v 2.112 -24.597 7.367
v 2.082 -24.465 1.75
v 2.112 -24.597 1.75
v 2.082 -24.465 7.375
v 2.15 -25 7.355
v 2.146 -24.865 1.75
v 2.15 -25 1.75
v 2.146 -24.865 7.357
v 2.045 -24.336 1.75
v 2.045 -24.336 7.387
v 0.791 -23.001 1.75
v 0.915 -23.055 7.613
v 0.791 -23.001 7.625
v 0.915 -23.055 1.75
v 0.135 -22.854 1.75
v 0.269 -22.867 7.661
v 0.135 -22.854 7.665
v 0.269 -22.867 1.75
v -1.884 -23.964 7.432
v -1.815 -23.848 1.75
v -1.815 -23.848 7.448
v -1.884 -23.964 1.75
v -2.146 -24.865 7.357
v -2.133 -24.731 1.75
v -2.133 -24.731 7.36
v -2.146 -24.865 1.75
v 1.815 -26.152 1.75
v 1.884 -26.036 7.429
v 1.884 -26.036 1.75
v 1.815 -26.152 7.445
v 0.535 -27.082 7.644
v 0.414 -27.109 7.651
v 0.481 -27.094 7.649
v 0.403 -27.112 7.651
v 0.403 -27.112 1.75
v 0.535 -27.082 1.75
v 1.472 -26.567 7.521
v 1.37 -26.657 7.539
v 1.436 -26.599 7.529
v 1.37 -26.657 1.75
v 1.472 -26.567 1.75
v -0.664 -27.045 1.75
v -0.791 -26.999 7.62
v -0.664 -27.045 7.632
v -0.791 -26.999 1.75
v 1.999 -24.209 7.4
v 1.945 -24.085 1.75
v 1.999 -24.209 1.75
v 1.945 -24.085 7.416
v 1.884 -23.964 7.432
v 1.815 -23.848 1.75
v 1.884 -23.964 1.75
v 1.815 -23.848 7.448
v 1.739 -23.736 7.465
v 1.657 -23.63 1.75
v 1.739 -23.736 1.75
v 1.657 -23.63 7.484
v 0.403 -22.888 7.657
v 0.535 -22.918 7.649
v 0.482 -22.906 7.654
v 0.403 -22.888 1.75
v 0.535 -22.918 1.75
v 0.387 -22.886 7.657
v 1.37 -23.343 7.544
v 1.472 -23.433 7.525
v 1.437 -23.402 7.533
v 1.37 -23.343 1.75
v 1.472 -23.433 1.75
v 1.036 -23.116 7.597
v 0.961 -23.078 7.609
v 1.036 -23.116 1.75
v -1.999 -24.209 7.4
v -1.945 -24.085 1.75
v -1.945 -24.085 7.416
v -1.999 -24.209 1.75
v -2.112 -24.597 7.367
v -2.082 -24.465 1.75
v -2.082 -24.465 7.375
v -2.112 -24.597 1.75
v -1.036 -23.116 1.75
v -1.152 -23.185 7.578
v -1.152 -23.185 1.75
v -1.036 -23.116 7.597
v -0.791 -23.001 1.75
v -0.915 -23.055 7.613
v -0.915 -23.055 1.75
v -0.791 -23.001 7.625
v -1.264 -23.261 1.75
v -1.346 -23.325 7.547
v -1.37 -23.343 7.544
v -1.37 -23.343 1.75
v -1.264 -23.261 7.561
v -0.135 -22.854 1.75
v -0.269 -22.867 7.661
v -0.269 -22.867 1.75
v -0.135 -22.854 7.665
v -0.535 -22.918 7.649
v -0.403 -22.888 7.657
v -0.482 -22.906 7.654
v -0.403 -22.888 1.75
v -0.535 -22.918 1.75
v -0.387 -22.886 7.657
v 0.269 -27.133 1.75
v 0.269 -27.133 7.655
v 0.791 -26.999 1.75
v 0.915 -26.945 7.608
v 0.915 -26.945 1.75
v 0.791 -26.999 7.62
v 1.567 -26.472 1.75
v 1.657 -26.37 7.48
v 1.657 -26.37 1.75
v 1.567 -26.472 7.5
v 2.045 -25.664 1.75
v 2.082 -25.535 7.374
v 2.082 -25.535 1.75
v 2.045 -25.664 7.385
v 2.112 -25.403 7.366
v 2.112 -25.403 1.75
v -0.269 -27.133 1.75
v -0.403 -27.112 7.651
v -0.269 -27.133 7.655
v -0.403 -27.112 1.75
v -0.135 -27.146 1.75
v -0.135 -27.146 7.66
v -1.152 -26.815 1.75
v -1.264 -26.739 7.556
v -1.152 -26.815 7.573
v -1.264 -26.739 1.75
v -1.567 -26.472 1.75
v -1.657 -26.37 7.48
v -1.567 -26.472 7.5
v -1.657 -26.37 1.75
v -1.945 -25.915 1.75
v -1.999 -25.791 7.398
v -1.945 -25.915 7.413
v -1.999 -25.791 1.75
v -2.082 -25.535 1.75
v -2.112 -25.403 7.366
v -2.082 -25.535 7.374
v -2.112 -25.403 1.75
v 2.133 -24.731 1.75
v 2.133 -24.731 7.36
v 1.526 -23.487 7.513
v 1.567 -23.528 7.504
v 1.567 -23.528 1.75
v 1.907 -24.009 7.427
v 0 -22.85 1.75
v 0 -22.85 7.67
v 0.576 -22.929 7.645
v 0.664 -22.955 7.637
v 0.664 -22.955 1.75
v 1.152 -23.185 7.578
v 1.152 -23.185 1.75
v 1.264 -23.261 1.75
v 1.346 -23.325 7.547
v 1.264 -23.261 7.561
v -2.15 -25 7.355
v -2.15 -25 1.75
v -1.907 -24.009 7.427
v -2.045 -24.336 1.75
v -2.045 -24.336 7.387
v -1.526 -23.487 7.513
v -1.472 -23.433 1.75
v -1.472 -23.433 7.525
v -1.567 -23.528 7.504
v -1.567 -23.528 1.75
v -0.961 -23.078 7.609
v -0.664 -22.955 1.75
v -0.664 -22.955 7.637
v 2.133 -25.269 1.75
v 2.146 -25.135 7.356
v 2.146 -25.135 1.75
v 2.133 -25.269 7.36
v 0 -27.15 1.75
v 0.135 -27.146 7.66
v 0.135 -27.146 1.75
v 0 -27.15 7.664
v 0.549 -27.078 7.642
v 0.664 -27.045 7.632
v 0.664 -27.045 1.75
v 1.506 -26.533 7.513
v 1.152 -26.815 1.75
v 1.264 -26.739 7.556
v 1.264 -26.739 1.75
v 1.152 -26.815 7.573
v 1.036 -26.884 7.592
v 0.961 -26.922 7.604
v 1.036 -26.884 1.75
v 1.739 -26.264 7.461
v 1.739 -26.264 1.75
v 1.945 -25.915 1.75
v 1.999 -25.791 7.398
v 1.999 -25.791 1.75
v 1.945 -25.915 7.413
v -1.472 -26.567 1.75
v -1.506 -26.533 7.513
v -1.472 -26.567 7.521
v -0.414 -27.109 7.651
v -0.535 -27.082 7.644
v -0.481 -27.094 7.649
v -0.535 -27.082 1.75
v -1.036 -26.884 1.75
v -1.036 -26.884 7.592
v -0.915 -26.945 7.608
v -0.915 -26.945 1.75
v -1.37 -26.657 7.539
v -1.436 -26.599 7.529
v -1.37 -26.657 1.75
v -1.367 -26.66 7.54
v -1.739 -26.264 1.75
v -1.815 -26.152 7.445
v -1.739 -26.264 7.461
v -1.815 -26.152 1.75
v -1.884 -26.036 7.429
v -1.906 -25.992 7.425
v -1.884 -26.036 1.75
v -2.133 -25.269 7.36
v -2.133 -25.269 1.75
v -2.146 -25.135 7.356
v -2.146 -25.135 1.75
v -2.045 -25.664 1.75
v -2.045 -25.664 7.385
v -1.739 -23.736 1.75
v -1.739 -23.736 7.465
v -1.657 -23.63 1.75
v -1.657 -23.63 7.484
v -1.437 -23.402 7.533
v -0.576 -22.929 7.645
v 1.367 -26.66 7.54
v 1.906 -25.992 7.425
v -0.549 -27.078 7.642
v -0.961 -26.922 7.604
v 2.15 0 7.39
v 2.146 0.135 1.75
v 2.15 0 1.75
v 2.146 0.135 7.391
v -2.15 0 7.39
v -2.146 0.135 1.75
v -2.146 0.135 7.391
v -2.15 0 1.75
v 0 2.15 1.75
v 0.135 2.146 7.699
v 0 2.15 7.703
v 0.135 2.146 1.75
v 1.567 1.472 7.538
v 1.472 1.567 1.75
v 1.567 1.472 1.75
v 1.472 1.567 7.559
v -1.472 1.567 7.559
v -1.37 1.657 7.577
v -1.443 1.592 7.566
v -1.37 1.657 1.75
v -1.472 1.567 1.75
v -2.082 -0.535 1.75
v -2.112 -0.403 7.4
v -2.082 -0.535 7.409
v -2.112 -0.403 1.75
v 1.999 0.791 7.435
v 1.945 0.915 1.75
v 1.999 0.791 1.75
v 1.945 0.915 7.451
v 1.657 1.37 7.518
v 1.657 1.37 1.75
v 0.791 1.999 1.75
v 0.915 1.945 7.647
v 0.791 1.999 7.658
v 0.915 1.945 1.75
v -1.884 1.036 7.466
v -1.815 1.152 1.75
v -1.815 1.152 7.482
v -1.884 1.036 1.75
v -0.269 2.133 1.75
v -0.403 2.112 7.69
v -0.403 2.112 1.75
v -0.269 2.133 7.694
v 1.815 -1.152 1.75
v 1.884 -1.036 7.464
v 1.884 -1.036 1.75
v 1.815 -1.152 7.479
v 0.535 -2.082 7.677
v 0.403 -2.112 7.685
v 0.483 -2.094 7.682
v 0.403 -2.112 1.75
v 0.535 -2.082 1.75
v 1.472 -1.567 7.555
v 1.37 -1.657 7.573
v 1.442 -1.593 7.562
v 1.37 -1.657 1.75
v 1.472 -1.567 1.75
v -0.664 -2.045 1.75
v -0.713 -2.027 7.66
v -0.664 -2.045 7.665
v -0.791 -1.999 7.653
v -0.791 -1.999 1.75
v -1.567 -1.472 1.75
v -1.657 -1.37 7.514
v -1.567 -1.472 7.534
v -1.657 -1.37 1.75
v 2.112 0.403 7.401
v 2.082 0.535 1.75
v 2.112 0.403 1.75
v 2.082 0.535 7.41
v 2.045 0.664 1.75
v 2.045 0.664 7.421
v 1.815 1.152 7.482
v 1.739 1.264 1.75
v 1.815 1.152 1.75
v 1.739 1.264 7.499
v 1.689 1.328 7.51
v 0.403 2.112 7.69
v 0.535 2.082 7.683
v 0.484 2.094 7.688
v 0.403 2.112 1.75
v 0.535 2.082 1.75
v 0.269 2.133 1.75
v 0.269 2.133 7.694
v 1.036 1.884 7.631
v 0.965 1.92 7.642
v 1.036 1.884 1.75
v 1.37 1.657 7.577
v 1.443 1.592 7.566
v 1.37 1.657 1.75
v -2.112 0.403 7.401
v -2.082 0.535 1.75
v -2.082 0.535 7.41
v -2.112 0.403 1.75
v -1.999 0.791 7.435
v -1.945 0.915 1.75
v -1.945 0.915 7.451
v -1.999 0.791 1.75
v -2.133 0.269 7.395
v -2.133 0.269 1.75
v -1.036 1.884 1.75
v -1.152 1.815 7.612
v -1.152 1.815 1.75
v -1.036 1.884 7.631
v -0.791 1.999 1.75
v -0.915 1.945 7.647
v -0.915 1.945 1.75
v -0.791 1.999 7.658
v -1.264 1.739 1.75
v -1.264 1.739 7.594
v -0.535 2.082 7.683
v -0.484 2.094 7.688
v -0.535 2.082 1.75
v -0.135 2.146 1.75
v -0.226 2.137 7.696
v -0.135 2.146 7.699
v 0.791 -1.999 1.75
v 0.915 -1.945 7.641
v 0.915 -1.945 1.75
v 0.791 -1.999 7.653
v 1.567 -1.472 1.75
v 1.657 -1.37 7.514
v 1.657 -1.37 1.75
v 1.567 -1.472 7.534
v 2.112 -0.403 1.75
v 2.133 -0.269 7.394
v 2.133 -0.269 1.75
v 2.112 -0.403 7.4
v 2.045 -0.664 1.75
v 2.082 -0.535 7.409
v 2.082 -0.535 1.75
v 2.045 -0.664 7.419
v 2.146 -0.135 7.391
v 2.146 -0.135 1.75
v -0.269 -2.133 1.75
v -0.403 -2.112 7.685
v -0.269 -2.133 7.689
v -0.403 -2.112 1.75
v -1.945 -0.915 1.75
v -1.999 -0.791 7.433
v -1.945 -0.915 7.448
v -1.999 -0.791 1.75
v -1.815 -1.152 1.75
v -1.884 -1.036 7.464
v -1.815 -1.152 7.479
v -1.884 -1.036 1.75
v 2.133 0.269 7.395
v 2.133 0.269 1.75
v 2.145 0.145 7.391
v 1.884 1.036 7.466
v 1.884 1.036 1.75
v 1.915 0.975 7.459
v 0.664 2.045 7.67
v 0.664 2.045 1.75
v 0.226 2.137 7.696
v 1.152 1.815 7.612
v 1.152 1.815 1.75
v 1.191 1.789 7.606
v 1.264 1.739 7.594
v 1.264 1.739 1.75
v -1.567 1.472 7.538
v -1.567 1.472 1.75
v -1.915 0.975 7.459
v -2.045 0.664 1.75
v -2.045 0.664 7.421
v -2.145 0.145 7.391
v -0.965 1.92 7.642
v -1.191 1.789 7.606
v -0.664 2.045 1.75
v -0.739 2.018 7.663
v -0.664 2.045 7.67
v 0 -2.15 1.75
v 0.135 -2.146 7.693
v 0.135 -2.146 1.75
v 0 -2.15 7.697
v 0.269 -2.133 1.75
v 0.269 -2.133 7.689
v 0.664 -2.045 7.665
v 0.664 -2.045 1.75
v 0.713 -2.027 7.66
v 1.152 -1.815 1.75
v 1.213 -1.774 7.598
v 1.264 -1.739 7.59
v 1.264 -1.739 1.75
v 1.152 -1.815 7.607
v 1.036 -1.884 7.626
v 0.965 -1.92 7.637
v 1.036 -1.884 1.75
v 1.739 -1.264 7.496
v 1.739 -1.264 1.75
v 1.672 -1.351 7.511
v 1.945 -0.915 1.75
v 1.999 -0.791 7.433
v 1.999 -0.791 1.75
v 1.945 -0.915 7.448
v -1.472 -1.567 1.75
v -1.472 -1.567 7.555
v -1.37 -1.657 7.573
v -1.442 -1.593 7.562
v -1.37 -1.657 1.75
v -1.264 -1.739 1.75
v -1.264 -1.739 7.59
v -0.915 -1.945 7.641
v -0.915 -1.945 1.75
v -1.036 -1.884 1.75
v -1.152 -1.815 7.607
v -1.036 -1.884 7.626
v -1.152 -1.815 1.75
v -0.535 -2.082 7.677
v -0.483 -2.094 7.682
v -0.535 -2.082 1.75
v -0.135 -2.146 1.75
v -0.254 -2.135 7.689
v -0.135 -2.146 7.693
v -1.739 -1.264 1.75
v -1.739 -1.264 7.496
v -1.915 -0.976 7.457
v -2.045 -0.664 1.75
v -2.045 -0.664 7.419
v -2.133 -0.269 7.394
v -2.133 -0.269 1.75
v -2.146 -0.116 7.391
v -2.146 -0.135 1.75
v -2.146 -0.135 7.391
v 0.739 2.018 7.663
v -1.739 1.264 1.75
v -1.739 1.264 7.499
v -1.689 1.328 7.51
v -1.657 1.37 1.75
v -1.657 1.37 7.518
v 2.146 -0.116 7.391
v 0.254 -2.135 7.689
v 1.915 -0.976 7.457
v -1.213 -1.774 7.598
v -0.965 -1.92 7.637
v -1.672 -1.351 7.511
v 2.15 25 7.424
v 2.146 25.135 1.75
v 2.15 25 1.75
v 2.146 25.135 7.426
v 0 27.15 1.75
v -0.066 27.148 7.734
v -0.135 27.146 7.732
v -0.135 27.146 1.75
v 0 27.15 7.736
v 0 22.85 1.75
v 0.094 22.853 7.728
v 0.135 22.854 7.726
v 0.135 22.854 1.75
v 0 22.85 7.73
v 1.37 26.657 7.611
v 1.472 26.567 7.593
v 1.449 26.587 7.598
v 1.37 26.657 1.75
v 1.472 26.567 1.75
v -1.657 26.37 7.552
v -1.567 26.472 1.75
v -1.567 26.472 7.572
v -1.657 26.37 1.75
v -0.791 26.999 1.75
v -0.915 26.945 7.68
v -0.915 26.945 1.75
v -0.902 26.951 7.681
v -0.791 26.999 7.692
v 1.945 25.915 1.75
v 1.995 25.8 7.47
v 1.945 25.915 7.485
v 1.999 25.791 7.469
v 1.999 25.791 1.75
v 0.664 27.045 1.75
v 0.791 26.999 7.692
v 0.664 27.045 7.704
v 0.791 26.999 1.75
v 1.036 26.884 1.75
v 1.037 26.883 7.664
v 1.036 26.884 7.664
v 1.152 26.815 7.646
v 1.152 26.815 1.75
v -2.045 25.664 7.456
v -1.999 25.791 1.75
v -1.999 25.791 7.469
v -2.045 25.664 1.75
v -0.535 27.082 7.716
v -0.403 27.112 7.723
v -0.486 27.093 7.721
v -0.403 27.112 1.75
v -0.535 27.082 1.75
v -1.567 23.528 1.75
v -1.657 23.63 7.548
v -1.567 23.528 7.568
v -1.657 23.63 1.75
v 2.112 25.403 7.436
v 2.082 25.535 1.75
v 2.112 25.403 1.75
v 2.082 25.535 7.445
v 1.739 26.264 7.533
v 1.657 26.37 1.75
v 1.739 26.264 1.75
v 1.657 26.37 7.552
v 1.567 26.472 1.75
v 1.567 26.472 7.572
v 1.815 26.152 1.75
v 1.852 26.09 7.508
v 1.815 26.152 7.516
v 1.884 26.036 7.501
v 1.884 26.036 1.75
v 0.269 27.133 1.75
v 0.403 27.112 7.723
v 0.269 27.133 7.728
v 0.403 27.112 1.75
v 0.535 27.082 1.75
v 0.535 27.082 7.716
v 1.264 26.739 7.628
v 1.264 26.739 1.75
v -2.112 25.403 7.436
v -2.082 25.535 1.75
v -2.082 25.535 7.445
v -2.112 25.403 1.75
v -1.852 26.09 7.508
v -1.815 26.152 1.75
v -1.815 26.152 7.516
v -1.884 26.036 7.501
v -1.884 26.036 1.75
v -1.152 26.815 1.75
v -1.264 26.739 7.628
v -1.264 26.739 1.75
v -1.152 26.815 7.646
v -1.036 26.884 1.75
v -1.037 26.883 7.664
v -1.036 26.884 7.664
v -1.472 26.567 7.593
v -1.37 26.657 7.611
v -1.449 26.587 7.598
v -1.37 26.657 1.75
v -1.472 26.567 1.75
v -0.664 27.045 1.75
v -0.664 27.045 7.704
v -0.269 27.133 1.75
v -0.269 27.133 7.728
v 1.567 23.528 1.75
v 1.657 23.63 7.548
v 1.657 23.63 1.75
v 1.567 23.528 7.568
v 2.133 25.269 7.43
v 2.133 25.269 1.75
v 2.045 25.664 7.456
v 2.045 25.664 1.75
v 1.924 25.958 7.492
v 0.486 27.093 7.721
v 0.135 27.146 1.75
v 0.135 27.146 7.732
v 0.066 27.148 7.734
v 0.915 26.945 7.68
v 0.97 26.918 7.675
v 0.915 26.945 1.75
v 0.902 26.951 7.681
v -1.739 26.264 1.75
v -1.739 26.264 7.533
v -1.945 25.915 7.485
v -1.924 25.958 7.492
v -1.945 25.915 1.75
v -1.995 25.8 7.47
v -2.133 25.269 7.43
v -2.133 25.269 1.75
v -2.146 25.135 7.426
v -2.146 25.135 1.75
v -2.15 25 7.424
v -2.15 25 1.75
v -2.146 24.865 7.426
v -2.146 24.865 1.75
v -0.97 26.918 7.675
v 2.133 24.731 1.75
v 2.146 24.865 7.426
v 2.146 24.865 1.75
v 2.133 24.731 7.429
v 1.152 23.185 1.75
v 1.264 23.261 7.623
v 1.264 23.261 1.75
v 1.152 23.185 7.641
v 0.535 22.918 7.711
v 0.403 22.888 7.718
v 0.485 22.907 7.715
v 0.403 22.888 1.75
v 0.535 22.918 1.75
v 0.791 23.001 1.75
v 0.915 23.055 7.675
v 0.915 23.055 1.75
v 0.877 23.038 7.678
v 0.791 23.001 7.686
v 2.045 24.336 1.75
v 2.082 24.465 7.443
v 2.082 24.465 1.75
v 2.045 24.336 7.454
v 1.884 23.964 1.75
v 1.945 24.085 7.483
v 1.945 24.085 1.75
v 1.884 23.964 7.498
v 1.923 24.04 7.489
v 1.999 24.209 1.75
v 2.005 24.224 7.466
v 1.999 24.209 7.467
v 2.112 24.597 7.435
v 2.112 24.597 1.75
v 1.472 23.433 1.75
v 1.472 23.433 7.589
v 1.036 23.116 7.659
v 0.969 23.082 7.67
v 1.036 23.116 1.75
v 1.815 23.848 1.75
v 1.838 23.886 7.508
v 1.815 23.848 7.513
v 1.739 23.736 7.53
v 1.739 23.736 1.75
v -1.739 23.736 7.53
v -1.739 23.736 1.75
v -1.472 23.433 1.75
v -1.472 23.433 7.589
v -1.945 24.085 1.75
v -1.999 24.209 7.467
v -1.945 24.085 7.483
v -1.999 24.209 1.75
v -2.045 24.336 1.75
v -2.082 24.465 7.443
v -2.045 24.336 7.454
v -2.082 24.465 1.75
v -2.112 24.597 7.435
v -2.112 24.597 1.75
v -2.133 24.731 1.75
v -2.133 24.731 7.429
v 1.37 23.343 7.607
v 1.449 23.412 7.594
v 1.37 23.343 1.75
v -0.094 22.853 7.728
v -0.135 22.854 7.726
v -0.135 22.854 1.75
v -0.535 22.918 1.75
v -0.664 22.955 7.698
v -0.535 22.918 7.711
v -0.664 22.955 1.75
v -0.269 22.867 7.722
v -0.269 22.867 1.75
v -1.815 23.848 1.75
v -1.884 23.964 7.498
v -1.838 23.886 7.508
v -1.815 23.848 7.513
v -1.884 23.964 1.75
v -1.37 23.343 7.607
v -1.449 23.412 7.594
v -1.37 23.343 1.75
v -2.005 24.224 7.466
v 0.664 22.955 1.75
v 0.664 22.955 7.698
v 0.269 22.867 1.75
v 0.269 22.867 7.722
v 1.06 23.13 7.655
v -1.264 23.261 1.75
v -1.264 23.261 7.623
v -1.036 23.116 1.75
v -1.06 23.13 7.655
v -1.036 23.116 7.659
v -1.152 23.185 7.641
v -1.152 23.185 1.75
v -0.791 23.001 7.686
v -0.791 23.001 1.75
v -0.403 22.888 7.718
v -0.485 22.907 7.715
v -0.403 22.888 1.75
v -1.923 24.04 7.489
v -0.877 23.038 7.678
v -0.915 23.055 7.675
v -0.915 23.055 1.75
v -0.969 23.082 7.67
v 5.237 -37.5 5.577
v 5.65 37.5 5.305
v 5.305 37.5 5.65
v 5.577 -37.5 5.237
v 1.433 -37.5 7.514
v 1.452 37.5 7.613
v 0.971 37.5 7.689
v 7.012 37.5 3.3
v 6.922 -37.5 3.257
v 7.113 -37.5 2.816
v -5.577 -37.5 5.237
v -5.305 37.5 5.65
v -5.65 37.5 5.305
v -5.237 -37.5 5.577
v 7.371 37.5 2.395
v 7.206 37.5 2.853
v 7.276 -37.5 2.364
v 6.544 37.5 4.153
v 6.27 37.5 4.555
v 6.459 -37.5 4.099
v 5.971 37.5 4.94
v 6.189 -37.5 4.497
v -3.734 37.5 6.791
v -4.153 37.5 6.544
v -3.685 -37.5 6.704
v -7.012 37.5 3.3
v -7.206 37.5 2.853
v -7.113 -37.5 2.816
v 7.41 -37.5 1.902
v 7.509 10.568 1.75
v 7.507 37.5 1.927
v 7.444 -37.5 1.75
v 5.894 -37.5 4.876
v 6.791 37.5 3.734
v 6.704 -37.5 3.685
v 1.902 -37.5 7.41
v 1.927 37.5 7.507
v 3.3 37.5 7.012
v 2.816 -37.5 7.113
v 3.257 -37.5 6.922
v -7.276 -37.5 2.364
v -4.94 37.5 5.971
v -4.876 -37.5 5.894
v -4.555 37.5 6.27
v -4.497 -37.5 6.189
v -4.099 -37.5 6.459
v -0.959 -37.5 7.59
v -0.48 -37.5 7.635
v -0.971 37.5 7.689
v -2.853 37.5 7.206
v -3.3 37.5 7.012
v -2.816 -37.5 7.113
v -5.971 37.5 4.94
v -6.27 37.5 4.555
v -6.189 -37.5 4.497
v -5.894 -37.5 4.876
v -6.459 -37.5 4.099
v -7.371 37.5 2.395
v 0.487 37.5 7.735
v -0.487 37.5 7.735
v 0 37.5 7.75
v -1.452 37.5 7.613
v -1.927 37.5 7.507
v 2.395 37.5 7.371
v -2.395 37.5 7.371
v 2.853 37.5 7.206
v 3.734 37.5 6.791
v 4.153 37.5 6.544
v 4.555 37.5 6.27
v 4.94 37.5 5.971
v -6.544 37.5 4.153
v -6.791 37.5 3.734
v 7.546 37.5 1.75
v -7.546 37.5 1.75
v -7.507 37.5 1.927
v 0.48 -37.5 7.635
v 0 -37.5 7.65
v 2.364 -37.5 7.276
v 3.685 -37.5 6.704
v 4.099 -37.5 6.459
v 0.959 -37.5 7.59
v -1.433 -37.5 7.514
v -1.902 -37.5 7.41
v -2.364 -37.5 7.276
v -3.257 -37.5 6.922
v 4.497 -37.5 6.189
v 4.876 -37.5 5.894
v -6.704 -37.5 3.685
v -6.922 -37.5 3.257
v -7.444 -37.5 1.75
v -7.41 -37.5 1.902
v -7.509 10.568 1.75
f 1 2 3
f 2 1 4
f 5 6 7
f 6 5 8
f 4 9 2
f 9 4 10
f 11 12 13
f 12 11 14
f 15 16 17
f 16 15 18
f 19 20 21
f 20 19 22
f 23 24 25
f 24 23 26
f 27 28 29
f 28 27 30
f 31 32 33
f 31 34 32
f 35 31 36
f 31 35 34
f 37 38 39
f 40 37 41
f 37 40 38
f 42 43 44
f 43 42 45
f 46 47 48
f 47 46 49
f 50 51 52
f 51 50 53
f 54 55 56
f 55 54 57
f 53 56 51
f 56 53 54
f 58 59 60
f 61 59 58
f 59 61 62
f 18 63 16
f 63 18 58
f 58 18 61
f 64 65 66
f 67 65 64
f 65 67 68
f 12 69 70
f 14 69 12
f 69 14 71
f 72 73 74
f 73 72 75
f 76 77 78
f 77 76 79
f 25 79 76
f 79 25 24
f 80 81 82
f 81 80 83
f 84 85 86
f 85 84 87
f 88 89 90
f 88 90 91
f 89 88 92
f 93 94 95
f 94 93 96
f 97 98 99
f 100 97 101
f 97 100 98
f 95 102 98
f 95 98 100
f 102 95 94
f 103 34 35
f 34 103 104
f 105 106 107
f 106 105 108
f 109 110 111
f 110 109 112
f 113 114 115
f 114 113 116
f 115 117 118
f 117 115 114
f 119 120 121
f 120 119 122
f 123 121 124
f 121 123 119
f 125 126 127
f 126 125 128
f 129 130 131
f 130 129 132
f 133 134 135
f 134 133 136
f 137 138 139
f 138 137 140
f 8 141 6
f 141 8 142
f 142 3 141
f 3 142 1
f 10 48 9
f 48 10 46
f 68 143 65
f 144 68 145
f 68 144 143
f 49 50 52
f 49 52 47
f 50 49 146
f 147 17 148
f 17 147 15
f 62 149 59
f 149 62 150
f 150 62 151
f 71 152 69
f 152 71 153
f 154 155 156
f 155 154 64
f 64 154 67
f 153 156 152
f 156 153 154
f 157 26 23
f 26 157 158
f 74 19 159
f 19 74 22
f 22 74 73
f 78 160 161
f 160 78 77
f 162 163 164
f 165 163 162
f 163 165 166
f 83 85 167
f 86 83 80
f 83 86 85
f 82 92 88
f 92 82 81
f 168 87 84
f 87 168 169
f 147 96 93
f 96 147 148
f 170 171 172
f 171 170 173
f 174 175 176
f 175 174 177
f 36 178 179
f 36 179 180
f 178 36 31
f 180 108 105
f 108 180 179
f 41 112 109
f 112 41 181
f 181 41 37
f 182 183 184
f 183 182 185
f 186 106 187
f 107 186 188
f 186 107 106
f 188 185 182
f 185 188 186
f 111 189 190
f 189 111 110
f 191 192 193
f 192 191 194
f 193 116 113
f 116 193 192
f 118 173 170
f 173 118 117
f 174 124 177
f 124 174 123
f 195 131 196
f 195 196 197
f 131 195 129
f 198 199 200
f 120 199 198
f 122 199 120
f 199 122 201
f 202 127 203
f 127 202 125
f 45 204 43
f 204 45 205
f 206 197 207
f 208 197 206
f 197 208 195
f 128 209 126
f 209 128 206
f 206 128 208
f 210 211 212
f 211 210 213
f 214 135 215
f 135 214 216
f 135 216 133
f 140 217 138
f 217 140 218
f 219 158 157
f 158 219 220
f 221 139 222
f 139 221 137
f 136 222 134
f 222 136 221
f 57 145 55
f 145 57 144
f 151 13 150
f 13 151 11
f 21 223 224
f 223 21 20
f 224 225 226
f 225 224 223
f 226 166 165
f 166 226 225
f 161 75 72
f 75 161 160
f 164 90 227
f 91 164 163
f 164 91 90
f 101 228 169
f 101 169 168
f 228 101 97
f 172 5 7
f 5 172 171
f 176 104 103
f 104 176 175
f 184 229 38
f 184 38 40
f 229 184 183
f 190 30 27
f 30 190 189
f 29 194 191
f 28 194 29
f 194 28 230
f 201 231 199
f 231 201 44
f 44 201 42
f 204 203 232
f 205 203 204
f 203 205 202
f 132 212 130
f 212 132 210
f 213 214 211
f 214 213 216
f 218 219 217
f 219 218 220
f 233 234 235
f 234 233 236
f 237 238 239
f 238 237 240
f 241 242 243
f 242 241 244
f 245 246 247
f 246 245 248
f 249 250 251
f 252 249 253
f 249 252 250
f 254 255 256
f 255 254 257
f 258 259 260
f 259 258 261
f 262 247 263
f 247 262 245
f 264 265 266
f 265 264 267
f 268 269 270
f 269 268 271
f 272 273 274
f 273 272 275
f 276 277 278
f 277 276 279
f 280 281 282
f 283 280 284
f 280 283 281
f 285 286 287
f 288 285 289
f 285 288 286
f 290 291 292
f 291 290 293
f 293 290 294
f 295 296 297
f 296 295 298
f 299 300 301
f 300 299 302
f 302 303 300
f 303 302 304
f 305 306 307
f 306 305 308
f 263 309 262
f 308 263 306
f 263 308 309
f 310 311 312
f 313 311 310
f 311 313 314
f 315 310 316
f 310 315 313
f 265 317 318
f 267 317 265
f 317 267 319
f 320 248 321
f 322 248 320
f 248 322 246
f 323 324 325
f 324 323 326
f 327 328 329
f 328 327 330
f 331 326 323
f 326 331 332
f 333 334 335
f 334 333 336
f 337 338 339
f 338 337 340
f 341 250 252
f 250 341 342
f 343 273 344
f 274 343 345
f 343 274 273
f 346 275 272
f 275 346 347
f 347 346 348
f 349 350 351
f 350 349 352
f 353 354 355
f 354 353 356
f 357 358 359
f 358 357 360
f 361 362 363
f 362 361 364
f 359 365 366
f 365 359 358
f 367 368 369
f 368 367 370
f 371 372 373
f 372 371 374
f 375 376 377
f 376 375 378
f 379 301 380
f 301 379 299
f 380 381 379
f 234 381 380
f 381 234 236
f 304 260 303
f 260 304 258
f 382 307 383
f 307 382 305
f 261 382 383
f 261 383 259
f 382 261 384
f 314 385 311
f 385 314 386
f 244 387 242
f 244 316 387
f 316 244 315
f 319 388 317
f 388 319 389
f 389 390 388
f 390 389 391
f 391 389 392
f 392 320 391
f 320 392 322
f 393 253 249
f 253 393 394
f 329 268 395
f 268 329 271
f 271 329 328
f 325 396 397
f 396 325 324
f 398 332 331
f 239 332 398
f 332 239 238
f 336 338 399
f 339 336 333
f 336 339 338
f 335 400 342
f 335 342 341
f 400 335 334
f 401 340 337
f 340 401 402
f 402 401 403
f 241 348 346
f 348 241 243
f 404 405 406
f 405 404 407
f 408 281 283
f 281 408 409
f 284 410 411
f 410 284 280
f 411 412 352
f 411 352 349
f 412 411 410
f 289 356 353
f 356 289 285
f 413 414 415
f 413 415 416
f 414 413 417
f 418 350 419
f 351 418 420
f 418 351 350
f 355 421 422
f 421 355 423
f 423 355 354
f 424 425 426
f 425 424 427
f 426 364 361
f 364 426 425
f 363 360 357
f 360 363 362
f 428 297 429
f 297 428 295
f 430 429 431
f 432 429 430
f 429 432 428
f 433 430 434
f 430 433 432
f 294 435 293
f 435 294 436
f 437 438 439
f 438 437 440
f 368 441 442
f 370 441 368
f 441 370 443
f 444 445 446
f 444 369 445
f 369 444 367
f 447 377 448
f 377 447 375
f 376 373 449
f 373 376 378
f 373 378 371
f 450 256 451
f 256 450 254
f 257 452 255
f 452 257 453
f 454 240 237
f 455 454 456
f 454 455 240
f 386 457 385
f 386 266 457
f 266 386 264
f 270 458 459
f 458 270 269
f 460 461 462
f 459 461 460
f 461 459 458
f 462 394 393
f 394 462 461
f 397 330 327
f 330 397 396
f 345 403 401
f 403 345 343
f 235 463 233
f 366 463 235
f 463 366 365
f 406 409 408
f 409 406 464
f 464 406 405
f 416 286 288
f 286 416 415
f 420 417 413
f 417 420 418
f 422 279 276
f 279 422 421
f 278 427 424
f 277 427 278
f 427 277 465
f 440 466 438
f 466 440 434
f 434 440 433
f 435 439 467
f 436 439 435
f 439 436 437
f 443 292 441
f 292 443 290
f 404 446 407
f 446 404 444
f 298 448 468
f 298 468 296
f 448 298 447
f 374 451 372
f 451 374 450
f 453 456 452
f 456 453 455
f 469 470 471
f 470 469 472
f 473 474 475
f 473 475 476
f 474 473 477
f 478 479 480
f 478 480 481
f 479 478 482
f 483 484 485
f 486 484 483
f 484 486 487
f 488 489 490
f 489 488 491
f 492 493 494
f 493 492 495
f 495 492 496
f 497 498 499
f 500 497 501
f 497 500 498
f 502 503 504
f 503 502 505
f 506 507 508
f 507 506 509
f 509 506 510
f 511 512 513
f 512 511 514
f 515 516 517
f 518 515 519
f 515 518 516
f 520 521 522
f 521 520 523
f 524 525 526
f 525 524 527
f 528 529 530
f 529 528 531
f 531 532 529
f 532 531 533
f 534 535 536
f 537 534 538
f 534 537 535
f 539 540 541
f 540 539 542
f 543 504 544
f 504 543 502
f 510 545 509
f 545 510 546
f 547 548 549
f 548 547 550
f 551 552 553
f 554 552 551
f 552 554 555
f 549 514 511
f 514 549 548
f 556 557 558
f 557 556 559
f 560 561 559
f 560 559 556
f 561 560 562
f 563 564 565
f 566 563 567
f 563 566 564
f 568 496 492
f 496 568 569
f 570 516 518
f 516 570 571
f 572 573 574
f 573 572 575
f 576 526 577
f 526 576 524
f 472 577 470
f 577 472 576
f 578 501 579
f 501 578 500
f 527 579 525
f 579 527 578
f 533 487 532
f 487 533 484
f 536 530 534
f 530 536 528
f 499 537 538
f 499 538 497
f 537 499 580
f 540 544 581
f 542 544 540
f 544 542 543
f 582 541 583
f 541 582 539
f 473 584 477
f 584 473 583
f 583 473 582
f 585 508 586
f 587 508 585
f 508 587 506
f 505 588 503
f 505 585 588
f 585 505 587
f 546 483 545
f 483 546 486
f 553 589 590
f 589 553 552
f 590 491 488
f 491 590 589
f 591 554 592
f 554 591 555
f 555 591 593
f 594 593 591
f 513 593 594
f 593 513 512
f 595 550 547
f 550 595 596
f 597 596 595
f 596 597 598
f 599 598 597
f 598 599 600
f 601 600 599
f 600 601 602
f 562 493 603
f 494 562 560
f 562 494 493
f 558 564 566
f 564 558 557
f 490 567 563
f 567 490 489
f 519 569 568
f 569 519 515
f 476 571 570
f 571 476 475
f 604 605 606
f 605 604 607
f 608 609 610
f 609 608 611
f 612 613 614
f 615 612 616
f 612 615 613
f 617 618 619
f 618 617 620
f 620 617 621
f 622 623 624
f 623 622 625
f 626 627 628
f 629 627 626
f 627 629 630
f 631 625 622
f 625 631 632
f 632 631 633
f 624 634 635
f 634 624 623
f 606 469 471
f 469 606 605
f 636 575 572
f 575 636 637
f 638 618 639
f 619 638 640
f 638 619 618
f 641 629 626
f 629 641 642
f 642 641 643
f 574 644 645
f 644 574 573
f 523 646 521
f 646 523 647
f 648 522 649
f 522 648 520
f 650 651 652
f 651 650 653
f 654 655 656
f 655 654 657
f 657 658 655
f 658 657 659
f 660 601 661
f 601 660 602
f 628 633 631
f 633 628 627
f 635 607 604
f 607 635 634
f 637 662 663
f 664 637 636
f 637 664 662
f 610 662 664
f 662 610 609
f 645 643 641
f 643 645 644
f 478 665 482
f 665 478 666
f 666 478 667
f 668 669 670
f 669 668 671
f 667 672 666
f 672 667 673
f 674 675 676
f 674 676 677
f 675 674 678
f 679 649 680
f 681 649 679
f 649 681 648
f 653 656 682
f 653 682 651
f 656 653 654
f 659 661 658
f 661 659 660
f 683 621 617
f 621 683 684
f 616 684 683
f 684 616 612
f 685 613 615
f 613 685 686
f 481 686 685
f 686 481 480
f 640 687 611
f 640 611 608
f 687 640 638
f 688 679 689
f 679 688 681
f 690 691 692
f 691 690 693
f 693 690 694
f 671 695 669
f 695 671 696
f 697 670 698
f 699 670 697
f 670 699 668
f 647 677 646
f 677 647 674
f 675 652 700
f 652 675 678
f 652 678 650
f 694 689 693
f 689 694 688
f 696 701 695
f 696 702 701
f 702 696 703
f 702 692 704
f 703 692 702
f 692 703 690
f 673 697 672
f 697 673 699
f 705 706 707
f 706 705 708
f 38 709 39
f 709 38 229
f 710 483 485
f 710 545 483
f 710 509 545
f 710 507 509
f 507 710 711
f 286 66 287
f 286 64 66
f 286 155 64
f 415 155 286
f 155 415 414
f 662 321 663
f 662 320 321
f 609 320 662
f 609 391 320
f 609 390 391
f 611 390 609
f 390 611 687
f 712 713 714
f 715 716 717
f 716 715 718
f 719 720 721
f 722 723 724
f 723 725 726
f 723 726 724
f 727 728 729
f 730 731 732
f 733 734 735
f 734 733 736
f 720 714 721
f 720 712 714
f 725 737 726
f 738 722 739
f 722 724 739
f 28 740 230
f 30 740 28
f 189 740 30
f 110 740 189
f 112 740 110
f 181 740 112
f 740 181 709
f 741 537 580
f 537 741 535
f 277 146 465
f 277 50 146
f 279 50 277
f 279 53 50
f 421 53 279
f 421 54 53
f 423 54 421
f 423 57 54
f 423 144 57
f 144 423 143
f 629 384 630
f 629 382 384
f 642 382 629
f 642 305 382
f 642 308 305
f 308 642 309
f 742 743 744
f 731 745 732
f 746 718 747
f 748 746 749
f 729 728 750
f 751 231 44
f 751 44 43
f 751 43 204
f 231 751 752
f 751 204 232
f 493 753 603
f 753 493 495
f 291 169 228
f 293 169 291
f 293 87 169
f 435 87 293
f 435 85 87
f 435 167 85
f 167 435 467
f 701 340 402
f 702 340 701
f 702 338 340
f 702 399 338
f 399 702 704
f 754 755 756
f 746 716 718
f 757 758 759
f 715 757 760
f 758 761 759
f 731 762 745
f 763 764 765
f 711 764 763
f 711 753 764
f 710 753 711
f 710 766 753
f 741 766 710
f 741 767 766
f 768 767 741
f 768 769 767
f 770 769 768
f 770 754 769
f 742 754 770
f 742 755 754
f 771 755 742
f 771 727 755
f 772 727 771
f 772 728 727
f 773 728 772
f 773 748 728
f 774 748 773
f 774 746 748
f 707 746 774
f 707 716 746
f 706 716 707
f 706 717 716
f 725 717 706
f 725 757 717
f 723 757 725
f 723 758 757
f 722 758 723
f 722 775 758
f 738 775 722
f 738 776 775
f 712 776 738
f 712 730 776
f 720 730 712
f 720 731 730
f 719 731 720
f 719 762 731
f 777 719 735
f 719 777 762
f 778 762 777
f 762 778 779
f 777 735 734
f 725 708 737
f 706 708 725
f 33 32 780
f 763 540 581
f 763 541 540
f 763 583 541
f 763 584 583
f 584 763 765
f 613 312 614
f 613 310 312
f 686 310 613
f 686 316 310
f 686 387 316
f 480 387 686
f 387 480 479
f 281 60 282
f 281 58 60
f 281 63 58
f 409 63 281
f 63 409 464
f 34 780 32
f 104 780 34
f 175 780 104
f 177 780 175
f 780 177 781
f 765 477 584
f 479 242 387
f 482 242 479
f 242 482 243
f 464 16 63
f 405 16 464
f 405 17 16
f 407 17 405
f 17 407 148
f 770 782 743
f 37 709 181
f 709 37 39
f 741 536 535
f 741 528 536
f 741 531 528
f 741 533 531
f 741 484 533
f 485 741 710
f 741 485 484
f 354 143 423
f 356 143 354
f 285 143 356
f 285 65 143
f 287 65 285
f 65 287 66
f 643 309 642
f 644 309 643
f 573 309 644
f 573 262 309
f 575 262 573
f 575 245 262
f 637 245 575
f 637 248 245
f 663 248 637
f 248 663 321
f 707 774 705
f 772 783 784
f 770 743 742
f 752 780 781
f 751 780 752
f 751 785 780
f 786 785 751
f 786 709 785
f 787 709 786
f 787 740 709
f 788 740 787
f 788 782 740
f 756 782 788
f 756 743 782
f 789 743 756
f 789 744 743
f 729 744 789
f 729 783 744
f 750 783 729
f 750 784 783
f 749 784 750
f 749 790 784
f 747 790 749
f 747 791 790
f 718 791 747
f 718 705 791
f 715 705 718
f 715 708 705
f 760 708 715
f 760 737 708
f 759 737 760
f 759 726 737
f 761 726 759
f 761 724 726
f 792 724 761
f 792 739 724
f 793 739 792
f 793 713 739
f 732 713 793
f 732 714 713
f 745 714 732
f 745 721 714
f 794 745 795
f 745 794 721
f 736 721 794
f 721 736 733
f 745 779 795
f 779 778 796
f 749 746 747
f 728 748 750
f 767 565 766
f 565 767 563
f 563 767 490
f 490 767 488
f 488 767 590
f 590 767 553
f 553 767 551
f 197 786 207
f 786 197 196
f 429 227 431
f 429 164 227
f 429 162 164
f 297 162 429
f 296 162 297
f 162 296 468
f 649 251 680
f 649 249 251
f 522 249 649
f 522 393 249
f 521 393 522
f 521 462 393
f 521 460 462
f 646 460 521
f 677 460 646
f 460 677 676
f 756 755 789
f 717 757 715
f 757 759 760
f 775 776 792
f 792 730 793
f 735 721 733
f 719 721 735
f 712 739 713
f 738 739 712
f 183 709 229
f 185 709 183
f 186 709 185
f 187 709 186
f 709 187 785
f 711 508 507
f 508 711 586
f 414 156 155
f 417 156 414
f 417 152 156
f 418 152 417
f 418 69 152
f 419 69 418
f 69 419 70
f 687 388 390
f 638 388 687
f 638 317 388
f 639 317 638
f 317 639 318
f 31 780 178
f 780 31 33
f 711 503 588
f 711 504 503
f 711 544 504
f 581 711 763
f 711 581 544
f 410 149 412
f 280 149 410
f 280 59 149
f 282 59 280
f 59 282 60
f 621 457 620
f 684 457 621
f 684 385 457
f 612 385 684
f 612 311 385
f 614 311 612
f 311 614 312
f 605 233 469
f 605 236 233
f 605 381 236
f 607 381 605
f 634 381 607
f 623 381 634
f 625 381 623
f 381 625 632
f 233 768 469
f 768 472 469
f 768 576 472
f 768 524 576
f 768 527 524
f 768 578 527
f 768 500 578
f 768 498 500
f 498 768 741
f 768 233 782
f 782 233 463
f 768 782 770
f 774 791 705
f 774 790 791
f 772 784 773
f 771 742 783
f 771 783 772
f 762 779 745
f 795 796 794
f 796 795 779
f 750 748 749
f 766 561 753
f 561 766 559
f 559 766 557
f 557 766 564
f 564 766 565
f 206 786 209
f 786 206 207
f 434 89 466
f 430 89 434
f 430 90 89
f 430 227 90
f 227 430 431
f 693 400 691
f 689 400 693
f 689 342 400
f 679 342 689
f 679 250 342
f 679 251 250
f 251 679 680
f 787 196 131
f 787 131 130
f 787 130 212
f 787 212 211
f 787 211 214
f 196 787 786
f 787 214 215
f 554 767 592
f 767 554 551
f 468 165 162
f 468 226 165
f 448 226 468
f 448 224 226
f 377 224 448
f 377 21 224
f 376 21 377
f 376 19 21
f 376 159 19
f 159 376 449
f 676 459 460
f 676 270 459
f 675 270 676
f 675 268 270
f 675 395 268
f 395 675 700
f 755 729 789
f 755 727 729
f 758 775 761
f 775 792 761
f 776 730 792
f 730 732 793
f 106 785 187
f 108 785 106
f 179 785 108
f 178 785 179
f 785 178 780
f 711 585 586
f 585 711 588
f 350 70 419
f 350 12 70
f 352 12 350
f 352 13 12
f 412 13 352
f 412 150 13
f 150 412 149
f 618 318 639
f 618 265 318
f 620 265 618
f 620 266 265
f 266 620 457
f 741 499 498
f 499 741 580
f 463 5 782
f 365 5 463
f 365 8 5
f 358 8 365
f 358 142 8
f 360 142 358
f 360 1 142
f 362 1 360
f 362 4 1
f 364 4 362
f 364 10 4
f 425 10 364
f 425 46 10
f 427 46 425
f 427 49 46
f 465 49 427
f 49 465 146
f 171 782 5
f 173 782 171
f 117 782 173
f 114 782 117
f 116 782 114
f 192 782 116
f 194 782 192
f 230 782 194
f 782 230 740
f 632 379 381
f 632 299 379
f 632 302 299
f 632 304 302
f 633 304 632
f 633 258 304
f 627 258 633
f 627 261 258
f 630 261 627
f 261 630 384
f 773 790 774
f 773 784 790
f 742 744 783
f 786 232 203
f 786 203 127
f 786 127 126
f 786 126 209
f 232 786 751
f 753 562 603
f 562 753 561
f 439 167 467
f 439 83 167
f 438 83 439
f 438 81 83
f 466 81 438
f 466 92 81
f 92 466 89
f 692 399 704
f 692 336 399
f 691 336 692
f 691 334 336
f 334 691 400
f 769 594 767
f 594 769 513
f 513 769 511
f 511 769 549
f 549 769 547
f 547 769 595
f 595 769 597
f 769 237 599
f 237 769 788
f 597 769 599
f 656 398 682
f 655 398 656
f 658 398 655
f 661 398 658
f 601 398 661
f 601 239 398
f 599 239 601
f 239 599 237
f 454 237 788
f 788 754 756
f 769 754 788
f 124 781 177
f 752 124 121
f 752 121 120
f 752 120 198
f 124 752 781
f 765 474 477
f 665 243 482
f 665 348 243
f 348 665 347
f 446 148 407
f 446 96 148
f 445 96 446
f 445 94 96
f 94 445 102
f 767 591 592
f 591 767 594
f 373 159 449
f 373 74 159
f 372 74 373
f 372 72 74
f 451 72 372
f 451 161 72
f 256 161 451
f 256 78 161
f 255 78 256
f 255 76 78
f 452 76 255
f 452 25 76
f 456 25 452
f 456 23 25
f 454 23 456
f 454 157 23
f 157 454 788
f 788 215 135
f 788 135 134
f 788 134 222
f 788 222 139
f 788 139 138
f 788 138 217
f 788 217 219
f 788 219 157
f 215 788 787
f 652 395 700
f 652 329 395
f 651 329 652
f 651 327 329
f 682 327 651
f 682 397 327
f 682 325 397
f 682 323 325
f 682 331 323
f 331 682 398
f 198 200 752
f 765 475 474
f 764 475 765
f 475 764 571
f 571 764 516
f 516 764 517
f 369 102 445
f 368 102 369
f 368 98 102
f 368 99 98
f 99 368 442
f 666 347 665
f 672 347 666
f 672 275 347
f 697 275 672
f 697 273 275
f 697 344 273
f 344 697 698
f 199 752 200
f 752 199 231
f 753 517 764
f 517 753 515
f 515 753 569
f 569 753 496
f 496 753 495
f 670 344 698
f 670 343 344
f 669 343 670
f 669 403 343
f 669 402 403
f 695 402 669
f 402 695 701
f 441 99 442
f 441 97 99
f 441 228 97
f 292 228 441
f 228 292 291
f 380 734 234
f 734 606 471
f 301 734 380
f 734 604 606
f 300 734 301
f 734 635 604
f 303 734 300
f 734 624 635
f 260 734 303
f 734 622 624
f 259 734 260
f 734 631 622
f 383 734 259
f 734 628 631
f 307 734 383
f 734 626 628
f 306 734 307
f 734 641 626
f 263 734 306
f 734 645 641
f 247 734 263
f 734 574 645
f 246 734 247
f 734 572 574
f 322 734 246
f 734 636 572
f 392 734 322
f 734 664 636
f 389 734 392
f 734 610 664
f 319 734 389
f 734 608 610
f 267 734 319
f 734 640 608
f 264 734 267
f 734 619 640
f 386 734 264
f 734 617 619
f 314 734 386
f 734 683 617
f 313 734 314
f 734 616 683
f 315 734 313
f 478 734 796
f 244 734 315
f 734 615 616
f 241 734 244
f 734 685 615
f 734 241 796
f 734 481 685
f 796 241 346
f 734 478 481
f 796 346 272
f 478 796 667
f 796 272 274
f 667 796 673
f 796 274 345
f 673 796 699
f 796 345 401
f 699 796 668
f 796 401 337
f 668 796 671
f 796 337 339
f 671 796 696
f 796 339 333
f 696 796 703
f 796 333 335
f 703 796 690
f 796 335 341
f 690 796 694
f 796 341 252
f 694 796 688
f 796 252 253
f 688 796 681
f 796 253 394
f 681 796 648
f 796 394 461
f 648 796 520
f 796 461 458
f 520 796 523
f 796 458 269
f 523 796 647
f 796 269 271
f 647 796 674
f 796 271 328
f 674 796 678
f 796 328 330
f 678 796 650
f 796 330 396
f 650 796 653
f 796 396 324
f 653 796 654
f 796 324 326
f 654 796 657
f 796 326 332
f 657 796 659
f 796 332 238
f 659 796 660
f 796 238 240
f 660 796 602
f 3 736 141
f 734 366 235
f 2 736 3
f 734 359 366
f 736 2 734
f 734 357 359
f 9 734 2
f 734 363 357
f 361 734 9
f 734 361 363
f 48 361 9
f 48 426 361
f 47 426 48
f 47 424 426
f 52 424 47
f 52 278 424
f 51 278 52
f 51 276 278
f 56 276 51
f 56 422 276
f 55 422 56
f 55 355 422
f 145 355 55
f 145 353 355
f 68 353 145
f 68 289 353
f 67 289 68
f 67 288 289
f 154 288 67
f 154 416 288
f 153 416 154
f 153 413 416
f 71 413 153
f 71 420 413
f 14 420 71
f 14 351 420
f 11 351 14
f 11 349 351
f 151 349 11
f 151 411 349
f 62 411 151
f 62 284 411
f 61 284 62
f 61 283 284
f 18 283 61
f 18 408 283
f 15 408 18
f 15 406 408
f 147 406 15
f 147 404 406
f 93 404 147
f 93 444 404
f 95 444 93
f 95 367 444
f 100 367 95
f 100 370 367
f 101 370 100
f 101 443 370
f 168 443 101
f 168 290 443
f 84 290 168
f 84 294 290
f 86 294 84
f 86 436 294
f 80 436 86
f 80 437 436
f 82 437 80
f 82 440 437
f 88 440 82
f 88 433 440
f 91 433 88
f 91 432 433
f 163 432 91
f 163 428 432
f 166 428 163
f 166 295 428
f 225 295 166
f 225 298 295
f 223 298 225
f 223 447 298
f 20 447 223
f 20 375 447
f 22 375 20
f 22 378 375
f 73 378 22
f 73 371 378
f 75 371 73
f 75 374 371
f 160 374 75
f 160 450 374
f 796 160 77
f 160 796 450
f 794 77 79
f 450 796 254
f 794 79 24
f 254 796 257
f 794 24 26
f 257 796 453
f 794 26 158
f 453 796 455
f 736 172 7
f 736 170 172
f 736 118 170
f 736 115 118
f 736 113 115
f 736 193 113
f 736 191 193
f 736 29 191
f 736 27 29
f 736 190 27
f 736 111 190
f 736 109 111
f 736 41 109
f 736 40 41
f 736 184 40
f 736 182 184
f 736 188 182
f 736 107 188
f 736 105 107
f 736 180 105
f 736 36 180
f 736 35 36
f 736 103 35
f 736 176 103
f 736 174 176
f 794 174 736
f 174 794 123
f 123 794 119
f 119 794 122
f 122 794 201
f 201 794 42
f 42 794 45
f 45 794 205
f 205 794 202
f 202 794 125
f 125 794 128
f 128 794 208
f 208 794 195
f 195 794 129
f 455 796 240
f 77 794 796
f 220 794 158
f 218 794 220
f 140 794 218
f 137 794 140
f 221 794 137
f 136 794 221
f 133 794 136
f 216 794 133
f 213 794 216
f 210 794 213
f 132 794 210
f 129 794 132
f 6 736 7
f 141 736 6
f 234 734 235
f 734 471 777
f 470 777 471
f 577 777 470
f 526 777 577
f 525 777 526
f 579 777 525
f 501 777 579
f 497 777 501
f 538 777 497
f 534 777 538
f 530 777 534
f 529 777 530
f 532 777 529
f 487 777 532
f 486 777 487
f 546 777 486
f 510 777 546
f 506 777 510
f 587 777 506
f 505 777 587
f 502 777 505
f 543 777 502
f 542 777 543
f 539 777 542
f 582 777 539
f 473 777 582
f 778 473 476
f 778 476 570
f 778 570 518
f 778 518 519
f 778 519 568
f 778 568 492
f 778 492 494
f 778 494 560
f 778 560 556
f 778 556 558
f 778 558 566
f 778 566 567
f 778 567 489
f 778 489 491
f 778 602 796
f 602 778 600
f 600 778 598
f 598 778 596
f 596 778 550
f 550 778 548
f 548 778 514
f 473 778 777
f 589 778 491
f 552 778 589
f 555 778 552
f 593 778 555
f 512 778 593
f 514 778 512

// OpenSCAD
$fn = 100;
epsilon = 0.2;

tolerance = 0.25;

pipe_id = 16;
conic = 0.2;

plate_thickness = 3;

hole_size = 4.3;
hole_spacing = 25;
holes = 2;

length = (holes+1)*hole_spacing;

intersection() {
    difference() {
        rotate([90,0,0]) cylinder(h=length, d1=pipe_id-tolerance*2, d2=pipe_id-tolerance*2-conic, center=true);
        cube([pipe_id+epsilon, length+2*epsilon, plate_thickness+tolerance*2], center=true);
        for (i = [0:holes]) {
            translate([0, -length/2 + hole_spacing/2 + hole_spacing*i, 0]) cylinder(h=pipe_id+2*epsilon, d=hole_size, center=true);
        }
    }
    translate([0,0,pipe_id/4]) cube([pipe_id+2*epsilon, length+2*epsilon, pipe_id/2+epsilon], center=true);
}
